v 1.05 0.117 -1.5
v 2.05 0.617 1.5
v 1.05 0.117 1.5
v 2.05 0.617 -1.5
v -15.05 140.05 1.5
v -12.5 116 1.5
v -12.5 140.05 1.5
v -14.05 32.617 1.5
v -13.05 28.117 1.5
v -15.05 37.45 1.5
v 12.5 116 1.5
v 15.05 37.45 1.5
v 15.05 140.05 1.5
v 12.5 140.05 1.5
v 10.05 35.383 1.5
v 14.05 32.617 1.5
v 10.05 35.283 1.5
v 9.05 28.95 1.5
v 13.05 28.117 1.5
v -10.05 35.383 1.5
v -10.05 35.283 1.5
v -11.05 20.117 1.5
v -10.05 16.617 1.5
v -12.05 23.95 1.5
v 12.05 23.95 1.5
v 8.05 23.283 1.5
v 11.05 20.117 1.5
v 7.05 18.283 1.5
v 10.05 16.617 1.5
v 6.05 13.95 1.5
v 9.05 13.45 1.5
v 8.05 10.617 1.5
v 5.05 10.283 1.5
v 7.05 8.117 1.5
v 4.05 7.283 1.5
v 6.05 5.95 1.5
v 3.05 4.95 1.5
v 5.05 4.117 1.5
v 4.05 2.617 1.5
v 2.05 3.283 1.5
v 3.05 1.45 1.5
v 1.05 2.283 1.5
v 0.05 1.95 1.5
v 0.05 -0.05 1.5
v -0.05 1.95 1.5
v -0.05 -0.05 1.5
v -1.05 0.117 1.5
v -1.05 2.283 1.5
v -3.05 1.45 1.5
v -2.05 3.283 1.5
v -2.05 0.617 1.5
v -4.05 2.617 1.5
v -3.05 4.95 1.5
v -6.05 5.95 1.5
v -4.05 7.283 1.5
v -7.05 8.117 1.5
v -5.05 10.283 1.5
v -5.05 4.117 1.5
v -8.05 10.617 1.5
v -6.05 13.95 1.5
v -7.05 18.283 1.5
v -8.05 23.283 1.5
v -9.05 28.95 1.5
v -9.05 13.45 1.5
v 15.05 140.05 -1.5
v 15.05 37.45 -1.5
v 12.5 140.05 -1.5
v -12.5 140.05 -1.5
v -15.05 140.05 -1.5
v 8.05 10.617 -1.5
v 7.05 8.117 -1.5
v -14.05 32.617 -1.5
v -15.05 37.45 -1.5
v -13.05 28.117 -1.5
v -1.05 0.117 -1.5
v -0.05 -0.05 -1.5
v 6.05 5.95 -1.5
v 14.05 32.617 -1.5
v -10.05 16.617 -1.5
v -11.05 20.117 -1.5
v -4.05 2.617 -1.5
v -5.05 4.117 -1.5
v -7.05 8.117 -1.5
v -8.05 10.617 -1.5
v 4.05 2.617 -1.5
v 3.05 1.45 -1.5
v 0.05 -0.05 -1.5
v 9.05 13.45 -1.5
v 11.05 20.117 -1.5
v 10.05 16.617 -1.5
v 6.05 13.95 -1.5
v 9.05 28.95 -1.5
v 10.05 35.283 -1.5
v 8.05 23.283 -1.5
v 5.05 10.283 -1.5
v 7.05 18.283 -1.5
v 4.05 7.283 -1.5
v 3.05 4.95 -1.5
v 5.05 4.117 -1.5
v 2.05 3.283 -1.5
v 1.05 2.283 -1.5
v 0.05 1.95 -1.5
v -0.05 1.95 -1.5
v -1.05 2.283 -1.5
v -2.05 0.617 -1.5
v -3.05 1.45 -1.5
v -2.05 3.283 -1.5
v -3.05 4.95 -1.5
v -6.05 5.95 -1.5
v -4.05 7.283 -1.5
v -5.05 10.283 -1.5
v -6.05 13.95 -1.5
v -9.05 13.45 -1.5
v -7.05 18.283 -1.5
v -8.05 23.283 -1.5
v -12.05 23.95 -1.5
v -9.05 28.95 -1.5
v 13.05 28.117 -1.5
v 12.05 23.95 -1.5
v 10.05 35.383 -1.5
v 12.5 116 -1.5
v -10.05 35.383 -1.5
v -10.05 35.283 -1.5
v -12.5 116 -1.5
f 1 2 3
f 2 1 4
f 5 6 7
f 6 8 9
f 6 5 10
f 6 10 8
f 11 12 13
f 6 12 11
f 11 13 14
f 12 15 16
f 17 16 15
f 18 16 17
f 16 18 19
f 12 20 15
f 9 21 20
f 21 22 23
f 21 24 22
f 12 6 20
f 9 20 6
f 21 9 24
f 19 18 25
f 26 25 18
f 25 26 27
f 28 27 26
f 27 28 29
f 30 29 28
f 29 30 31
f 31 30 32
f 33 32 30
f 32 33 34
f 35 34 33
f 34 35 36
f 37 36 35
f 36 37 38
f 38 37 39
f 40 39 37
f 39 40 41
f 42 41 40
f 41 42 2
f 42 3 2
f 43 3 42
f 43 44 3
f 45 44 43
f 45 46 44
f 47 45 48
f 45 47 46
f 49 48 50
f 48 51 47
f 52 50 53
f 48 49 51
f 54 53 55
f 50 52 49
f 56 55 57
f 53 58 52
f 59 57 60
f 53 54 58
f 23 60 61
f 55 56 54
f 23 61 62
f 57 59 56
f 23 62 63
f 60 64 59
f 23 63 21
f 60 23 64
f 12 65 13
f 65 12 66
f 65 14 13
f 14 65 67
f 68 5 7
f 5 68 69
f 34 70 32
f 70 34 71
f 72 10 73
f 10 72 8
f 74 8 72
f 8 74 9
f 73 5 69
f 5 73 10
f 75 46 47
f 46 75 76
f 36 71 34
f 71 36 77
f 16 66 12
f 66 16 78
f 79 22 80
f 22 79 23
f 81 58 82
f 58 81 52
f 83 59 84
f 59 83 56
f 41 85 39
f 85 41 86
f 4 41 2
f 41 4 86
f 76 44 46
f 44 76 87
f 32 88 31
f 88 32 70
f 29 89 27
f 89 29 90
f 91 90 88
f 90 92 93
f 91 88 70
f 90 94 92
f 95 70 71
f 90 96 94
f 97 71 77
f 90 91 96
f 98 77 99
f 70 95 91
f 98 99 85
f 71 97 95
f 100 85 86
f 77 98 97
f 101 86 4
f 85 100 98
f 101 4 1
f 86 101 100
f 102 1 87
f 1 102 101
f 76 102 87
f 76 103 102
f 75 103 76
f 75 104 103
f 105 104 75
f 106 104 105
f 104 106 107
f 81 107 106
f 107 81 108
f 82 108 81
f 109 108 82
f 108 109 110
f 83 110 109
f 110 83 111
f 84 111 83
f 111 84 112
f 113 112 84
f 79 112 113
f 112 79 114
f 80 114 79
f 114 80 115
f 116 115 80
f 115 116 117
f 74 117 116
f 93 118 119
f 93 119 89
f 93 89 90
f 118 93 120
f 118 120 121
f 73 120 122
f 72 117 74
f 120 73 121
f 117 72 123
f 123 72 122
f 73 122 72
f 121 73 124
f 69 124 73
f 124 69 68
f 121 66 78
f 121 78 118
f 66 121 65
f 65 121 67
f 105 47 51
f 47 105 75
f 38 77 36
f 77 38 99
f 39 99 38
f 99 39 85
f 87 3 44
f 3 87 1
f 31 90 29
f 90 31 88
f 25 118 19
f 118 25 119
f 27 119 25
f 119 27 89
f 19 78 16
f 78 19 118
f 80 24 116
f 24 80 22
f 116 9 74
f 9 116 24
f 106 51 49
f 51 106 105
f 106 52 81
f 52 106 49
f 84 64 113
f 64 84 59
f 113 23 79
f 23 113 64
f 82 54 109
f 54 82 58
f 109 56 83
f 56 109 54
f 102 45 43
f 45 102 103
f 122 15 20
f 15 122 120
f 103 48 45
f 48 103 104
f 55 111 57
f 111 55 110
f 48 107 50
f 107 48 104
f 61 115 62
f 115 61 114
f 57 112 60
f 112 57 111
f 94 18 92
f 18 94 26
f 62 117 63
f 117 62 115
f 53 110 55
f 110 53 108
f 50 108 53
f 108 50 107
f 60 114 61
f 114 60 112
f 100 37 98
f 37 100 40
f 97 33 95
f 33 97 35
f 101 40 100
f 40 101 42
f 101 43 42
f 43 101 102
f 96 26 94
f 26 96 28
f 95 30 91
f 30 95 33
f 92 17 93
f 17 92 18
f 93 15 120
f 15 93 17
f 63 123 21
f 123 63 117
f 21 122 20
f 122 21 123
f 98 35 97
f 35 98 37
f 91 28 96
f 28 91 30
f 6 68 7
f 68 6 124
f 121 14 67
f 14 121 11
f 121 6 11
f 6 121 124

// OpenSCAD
// Something Steve asked me to make

module Parabola(height, point, a, inc, width)
{
    for (x = [-width/2 : inc : width/2])
    {
        translate([x, a * pow(x, 2), 0])
        cube([point, point, height], center = true);
    }
}

module NetMakingTool(height = 3, a = 1/6, inc = 1, width = 30, length = 140, cutoutX = 25, cutoutY = 25)
{
    point = 0.1;

    difference()
    {
        hull()
        {
            Parabola(height, point, a, inc, width);

            translate([-width/2,  length, 0])
            cube([point, point, height], center = true);

            translate([width/2,  length, 0])
            cube([point, point, height], center = true);
        }

        translate([0, 2, 0])
        hull()
        {
            Parabola(height, point, a*2, inc, width*2/3);
        }

        translate([0, length - cutoutY/2 + 1, 0])
        cube([cutoutX, cutoutY, height + 2], center = true);
    }
}

NetMakingTool();
